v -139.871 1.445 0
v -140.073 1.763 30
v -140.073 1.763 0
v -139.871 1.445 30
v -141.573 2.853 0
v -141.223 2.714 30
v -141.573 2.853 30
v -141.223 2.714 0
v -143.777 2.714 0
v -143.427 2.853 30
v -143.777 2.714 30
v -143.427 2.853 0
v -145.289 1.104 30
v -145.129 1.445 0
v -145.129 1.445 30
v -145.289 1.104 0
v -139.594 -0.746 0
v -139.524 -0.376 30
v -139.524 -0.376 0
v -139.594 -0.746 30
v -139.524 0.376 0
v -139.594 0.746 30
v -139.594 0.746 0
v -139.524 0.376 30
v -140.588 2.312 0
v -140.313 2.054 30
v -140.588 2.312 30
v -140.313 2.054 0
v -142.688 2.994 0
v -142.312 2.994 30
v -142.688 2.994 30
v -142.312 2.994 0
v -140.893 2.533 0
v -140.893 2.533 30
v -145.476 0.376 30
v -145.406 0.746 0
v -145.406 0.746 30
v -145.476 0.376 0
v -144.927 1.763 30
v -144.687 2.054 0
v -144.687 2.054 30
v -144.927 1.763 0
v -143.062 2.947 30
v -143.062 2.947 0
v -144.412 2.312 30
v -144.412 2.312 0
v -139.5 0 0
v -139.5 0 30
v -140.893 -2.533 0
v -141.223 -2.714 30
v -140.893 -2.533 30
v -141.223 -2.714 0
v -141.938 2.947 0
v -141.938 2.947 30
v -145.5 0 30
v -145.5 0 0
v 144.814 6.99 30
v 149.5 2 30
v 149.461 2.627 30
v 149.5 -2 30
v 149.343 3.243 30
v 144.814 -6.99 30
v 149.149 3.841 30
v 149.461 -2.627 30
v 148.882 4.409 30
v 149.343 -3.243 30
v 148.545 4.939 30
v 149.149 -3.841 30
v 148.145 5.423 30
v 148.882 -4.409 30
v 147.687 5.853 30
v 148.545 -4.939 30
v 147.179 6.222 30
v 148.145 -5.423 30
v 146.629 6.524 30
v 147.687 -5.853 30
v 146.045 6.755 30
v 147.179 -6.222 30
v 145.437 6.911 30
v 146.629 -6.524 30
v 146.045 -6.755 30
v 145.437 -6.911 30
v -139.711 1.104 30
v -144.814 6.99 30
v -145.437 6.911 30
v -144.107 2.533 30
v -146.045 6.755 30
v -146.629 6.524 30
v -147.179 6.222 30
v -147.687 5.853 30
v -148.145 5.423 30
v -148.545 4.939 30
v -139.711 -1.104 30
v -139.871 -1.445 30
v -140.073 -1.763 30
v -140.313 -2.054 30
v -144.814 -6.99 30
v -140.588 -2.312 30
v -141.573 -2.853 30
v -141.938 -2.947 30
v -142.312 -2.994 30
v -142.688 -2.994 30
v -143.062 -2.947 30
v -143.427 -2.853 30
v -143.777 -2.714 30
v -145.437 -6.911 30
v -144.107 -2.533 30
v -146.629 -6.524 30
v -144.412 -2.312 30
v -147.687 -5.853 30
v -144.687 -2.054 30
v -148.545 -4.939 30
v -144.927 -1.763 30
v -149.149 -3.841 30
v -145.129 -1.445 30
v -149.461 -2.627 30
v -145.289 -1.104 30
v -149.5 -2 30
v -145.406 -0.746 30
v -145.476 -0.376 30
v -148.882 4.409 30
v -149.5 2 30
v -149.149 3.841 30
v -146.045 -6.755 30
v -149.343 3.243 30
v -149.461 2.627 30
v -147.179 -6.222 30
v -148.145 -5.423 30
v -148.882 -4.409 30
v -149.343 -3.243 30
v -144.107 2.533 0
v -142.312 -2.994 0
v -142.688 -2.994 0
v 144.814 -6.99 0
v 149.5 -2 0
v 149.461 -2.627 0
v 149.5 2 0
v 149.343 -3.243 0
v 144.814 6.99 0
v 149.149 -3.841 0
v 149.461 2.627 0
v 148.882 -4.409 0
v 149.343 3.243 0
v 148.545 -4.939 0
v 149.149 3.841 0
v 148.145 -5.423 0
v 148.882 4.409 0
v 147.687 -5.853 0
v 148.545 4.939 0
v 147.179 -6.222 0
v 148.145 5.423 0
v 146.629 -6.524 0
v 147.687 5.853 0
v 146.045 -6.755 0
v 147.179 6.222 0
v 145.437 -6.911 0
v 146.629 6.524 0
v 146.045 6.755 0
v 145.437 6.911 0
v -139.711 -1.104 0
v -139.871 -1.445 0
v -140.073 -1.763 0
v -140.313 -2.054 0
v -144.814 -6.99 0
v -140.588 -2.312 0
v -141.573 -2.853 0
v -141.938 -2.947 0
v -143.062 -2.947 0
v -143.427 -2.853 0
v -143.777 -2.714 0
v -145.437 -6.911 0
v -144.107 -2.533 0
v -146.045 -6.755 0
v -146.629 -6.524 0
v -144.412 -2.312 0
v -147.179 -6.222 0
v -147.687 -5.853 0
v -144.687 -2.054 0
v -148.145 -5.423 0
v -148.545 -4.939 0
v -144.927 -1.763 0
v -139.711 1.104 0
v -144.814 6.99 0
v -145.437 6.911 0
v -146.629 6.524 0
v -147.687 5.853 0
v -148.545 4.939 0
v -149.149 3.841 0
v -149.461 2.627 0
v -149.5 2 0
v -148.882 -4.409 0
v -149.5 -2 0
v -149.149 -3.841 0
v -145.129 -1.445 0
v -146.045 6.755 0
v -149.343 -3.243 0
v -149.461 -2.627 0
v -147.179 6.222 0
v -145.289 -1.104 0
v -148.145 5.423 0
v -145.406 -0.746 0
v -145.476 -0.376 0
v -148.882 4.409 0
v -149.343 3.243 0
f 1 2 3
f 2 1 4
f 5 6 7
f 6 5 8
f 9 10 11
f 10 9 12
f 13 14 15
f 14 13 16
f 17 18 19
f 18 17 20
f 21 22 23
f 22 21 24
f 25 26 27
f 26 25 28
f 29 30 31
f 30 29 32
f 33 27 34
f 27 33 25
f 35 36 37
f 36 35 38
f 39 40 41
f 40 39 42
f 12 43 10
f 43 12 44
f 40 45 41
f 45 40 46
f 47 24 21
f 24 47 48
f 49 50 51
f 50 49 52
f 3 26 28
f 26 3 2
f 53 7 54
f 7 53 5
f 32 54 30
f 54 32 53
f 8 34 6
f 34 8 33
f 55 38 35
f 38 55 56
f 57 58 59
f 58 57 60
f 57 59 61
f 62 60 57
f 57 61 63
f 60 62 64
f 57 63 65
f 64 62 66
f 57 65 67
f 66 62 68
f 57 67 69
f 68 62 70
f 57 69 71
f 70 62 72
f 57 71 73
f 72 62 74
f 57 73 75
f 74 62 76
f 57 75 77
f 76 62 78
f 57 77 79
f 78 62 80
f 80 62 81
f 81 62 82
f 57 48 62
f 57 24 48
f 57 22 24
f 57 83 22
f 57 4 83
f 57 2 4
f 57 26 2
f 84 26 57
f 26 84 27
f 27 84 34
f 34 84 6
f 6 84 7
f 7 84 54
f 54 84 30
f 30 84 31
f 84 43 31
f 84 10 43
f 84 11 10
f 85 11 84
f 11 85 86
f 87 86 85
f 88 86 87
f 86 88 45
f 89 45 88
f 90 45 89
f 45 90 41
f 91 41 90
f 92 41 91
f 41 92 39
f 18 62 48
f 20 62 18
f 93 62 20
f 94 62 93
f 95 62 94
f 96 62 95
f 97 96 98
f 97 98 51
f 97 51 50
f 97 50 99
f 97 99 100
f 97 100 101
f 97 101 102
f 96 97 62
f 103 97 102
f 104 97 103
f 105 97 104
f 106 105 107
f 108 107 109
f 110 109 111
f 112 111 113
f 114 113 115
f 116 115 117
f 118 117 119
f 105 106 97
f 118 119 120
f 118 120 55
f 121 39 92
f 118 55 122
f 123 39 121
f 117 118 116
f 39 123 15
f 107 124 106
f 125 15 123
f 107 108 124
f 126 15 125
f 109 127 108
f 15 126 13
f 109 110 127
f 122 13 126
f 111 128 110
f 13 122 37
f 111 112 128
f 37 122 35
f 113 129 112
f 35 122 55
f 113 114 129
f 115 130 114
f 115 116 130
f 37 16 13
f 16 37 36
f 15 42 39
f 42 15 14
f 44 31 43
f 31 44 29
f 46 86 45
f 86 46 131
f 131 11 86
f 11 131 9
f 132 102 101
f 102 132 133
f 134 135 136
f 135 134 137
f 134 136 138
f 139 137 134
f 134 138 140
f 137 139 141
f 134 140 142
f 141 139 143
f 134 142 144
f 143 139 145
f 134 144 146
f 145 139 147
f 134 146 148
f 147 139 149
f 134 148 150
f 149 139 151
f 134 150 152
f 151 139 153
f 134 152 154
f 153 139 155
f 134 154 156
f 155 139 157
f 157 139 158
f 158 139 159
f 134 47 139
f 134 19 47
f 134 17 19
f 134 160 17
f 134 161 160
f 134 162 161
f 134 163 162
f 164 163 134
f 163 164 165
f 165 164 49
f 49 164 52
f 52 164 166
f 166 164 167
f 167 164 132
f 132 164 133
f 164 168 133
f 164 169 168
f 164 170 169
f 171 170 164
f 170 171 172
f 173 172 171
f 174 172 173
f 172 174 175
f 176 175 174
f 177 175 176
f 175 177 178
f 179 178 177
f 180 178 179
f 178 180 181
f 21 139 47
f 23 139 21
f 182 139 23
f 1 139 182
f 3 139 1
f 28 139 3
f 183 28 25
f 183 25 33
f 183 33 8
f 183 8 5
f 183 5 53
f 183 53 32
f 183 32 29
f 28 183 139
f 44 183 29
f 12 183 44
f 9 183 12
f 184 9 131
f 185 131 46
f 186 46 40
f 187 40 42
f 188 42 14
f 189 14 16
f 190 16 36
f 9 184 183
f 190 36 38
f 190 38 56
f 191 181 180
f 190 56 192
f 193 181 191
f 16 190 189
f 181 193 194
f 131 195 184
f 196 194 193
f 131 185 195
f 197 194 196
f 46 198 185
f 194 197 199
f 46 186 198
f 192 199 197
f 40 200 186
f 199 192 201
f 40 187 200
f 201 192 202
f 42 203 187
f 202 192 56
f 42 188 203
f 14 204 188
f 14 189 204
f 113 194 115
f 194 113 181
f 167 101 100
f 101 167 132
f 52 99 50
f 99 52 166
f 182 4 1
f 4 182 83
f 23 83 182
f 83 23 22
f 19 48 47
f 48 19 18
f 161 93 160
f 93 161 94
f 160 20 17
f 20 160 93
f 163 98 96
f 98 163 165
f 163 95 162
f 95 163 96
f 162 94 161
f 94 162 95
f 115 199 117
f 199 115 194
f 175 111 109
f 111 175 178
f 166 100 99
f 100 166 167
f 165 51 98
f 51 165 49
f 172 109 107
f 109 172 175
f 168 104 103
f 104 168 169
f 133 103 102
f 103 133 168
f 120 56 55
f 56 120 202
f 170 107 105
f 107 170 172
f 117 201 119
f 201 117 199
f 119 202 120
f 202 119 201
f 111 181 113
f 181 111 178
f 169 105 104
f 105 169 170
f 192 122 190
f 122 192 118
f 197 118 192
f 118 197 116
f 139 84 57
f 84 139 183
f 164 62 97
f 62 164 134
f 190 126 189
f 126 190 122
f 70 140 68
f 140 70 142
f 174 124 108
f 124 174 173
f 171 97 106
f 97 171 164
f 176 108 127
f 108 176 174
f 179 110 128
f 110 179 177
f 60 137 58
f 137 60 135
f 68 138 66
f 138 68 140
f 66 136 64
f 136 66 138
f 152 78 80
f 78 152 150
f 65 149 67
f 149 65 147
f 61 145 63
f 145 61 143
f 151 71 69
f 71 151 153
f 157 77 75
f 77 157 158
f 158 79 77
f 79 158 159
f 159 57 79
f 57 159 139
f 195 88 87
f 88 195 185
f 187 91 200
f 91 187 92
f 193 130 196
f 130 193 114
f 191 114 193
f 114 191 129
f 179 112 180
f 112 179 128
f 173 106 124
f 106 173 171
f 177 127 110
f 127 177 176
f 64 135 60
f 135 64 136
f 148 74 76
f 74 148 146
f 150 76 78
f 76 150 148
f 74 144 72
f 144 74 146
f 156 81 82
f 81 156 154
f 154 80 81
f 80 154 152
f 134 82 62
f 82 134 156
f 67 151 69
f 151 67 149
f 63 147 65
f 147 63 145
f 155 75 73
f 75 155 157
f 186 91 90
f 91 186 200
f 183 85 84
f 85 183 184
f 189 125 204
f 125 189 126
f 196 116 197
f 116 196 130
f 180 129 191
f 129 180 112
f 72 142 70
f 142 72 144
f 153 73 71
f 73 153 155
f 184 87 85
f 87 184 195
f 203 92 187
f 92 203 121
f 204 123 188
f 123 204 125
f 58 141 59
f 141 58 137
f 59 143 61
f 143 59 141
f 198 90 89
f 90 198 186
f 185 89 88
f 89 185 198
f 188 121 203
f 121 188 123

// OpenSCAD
$fn = 50;


difference() {
	union() {
		hull() {
			translate(v = [-144.5000000000, 2.0000000000, 0]) {
				cylinder(h = 30, r = 5);
			}
			translate(v = [144.5000000000, 2.0000000000, 0]) {
				cylinder(h = 30, r = 5);
			}
			translate(v = [-144.5000000000, -2.0000000000, 0]) {
				cylinder(h = 30, r = 5);
			}
			translate(v = [144.5000000000, -2.0000000000, 0]) {
				cylinder(h = 30, r = 5);
			}
		}
	}
	union() {
		translate(v = [-142.5000000000, 0.0000000000, 0]) {
			cylinder(h = 30, r = 3.0000000000);
		}
		translate(v = [-142.5000000000, 0.0000000000, 0]) {
			cylinder(h = 30, r = 1.5000000000);
		}
		translate(v = [-142.5000000000, 0.0000000000, 0]) {
			cylinder(h = 30, r = 1.5000000000);
		}
		translate(v = [-142.5000000000, 0.0000000000, 0]) {
			cylinder(h = 30, r = 1.5000000000);
		}
	}
}
